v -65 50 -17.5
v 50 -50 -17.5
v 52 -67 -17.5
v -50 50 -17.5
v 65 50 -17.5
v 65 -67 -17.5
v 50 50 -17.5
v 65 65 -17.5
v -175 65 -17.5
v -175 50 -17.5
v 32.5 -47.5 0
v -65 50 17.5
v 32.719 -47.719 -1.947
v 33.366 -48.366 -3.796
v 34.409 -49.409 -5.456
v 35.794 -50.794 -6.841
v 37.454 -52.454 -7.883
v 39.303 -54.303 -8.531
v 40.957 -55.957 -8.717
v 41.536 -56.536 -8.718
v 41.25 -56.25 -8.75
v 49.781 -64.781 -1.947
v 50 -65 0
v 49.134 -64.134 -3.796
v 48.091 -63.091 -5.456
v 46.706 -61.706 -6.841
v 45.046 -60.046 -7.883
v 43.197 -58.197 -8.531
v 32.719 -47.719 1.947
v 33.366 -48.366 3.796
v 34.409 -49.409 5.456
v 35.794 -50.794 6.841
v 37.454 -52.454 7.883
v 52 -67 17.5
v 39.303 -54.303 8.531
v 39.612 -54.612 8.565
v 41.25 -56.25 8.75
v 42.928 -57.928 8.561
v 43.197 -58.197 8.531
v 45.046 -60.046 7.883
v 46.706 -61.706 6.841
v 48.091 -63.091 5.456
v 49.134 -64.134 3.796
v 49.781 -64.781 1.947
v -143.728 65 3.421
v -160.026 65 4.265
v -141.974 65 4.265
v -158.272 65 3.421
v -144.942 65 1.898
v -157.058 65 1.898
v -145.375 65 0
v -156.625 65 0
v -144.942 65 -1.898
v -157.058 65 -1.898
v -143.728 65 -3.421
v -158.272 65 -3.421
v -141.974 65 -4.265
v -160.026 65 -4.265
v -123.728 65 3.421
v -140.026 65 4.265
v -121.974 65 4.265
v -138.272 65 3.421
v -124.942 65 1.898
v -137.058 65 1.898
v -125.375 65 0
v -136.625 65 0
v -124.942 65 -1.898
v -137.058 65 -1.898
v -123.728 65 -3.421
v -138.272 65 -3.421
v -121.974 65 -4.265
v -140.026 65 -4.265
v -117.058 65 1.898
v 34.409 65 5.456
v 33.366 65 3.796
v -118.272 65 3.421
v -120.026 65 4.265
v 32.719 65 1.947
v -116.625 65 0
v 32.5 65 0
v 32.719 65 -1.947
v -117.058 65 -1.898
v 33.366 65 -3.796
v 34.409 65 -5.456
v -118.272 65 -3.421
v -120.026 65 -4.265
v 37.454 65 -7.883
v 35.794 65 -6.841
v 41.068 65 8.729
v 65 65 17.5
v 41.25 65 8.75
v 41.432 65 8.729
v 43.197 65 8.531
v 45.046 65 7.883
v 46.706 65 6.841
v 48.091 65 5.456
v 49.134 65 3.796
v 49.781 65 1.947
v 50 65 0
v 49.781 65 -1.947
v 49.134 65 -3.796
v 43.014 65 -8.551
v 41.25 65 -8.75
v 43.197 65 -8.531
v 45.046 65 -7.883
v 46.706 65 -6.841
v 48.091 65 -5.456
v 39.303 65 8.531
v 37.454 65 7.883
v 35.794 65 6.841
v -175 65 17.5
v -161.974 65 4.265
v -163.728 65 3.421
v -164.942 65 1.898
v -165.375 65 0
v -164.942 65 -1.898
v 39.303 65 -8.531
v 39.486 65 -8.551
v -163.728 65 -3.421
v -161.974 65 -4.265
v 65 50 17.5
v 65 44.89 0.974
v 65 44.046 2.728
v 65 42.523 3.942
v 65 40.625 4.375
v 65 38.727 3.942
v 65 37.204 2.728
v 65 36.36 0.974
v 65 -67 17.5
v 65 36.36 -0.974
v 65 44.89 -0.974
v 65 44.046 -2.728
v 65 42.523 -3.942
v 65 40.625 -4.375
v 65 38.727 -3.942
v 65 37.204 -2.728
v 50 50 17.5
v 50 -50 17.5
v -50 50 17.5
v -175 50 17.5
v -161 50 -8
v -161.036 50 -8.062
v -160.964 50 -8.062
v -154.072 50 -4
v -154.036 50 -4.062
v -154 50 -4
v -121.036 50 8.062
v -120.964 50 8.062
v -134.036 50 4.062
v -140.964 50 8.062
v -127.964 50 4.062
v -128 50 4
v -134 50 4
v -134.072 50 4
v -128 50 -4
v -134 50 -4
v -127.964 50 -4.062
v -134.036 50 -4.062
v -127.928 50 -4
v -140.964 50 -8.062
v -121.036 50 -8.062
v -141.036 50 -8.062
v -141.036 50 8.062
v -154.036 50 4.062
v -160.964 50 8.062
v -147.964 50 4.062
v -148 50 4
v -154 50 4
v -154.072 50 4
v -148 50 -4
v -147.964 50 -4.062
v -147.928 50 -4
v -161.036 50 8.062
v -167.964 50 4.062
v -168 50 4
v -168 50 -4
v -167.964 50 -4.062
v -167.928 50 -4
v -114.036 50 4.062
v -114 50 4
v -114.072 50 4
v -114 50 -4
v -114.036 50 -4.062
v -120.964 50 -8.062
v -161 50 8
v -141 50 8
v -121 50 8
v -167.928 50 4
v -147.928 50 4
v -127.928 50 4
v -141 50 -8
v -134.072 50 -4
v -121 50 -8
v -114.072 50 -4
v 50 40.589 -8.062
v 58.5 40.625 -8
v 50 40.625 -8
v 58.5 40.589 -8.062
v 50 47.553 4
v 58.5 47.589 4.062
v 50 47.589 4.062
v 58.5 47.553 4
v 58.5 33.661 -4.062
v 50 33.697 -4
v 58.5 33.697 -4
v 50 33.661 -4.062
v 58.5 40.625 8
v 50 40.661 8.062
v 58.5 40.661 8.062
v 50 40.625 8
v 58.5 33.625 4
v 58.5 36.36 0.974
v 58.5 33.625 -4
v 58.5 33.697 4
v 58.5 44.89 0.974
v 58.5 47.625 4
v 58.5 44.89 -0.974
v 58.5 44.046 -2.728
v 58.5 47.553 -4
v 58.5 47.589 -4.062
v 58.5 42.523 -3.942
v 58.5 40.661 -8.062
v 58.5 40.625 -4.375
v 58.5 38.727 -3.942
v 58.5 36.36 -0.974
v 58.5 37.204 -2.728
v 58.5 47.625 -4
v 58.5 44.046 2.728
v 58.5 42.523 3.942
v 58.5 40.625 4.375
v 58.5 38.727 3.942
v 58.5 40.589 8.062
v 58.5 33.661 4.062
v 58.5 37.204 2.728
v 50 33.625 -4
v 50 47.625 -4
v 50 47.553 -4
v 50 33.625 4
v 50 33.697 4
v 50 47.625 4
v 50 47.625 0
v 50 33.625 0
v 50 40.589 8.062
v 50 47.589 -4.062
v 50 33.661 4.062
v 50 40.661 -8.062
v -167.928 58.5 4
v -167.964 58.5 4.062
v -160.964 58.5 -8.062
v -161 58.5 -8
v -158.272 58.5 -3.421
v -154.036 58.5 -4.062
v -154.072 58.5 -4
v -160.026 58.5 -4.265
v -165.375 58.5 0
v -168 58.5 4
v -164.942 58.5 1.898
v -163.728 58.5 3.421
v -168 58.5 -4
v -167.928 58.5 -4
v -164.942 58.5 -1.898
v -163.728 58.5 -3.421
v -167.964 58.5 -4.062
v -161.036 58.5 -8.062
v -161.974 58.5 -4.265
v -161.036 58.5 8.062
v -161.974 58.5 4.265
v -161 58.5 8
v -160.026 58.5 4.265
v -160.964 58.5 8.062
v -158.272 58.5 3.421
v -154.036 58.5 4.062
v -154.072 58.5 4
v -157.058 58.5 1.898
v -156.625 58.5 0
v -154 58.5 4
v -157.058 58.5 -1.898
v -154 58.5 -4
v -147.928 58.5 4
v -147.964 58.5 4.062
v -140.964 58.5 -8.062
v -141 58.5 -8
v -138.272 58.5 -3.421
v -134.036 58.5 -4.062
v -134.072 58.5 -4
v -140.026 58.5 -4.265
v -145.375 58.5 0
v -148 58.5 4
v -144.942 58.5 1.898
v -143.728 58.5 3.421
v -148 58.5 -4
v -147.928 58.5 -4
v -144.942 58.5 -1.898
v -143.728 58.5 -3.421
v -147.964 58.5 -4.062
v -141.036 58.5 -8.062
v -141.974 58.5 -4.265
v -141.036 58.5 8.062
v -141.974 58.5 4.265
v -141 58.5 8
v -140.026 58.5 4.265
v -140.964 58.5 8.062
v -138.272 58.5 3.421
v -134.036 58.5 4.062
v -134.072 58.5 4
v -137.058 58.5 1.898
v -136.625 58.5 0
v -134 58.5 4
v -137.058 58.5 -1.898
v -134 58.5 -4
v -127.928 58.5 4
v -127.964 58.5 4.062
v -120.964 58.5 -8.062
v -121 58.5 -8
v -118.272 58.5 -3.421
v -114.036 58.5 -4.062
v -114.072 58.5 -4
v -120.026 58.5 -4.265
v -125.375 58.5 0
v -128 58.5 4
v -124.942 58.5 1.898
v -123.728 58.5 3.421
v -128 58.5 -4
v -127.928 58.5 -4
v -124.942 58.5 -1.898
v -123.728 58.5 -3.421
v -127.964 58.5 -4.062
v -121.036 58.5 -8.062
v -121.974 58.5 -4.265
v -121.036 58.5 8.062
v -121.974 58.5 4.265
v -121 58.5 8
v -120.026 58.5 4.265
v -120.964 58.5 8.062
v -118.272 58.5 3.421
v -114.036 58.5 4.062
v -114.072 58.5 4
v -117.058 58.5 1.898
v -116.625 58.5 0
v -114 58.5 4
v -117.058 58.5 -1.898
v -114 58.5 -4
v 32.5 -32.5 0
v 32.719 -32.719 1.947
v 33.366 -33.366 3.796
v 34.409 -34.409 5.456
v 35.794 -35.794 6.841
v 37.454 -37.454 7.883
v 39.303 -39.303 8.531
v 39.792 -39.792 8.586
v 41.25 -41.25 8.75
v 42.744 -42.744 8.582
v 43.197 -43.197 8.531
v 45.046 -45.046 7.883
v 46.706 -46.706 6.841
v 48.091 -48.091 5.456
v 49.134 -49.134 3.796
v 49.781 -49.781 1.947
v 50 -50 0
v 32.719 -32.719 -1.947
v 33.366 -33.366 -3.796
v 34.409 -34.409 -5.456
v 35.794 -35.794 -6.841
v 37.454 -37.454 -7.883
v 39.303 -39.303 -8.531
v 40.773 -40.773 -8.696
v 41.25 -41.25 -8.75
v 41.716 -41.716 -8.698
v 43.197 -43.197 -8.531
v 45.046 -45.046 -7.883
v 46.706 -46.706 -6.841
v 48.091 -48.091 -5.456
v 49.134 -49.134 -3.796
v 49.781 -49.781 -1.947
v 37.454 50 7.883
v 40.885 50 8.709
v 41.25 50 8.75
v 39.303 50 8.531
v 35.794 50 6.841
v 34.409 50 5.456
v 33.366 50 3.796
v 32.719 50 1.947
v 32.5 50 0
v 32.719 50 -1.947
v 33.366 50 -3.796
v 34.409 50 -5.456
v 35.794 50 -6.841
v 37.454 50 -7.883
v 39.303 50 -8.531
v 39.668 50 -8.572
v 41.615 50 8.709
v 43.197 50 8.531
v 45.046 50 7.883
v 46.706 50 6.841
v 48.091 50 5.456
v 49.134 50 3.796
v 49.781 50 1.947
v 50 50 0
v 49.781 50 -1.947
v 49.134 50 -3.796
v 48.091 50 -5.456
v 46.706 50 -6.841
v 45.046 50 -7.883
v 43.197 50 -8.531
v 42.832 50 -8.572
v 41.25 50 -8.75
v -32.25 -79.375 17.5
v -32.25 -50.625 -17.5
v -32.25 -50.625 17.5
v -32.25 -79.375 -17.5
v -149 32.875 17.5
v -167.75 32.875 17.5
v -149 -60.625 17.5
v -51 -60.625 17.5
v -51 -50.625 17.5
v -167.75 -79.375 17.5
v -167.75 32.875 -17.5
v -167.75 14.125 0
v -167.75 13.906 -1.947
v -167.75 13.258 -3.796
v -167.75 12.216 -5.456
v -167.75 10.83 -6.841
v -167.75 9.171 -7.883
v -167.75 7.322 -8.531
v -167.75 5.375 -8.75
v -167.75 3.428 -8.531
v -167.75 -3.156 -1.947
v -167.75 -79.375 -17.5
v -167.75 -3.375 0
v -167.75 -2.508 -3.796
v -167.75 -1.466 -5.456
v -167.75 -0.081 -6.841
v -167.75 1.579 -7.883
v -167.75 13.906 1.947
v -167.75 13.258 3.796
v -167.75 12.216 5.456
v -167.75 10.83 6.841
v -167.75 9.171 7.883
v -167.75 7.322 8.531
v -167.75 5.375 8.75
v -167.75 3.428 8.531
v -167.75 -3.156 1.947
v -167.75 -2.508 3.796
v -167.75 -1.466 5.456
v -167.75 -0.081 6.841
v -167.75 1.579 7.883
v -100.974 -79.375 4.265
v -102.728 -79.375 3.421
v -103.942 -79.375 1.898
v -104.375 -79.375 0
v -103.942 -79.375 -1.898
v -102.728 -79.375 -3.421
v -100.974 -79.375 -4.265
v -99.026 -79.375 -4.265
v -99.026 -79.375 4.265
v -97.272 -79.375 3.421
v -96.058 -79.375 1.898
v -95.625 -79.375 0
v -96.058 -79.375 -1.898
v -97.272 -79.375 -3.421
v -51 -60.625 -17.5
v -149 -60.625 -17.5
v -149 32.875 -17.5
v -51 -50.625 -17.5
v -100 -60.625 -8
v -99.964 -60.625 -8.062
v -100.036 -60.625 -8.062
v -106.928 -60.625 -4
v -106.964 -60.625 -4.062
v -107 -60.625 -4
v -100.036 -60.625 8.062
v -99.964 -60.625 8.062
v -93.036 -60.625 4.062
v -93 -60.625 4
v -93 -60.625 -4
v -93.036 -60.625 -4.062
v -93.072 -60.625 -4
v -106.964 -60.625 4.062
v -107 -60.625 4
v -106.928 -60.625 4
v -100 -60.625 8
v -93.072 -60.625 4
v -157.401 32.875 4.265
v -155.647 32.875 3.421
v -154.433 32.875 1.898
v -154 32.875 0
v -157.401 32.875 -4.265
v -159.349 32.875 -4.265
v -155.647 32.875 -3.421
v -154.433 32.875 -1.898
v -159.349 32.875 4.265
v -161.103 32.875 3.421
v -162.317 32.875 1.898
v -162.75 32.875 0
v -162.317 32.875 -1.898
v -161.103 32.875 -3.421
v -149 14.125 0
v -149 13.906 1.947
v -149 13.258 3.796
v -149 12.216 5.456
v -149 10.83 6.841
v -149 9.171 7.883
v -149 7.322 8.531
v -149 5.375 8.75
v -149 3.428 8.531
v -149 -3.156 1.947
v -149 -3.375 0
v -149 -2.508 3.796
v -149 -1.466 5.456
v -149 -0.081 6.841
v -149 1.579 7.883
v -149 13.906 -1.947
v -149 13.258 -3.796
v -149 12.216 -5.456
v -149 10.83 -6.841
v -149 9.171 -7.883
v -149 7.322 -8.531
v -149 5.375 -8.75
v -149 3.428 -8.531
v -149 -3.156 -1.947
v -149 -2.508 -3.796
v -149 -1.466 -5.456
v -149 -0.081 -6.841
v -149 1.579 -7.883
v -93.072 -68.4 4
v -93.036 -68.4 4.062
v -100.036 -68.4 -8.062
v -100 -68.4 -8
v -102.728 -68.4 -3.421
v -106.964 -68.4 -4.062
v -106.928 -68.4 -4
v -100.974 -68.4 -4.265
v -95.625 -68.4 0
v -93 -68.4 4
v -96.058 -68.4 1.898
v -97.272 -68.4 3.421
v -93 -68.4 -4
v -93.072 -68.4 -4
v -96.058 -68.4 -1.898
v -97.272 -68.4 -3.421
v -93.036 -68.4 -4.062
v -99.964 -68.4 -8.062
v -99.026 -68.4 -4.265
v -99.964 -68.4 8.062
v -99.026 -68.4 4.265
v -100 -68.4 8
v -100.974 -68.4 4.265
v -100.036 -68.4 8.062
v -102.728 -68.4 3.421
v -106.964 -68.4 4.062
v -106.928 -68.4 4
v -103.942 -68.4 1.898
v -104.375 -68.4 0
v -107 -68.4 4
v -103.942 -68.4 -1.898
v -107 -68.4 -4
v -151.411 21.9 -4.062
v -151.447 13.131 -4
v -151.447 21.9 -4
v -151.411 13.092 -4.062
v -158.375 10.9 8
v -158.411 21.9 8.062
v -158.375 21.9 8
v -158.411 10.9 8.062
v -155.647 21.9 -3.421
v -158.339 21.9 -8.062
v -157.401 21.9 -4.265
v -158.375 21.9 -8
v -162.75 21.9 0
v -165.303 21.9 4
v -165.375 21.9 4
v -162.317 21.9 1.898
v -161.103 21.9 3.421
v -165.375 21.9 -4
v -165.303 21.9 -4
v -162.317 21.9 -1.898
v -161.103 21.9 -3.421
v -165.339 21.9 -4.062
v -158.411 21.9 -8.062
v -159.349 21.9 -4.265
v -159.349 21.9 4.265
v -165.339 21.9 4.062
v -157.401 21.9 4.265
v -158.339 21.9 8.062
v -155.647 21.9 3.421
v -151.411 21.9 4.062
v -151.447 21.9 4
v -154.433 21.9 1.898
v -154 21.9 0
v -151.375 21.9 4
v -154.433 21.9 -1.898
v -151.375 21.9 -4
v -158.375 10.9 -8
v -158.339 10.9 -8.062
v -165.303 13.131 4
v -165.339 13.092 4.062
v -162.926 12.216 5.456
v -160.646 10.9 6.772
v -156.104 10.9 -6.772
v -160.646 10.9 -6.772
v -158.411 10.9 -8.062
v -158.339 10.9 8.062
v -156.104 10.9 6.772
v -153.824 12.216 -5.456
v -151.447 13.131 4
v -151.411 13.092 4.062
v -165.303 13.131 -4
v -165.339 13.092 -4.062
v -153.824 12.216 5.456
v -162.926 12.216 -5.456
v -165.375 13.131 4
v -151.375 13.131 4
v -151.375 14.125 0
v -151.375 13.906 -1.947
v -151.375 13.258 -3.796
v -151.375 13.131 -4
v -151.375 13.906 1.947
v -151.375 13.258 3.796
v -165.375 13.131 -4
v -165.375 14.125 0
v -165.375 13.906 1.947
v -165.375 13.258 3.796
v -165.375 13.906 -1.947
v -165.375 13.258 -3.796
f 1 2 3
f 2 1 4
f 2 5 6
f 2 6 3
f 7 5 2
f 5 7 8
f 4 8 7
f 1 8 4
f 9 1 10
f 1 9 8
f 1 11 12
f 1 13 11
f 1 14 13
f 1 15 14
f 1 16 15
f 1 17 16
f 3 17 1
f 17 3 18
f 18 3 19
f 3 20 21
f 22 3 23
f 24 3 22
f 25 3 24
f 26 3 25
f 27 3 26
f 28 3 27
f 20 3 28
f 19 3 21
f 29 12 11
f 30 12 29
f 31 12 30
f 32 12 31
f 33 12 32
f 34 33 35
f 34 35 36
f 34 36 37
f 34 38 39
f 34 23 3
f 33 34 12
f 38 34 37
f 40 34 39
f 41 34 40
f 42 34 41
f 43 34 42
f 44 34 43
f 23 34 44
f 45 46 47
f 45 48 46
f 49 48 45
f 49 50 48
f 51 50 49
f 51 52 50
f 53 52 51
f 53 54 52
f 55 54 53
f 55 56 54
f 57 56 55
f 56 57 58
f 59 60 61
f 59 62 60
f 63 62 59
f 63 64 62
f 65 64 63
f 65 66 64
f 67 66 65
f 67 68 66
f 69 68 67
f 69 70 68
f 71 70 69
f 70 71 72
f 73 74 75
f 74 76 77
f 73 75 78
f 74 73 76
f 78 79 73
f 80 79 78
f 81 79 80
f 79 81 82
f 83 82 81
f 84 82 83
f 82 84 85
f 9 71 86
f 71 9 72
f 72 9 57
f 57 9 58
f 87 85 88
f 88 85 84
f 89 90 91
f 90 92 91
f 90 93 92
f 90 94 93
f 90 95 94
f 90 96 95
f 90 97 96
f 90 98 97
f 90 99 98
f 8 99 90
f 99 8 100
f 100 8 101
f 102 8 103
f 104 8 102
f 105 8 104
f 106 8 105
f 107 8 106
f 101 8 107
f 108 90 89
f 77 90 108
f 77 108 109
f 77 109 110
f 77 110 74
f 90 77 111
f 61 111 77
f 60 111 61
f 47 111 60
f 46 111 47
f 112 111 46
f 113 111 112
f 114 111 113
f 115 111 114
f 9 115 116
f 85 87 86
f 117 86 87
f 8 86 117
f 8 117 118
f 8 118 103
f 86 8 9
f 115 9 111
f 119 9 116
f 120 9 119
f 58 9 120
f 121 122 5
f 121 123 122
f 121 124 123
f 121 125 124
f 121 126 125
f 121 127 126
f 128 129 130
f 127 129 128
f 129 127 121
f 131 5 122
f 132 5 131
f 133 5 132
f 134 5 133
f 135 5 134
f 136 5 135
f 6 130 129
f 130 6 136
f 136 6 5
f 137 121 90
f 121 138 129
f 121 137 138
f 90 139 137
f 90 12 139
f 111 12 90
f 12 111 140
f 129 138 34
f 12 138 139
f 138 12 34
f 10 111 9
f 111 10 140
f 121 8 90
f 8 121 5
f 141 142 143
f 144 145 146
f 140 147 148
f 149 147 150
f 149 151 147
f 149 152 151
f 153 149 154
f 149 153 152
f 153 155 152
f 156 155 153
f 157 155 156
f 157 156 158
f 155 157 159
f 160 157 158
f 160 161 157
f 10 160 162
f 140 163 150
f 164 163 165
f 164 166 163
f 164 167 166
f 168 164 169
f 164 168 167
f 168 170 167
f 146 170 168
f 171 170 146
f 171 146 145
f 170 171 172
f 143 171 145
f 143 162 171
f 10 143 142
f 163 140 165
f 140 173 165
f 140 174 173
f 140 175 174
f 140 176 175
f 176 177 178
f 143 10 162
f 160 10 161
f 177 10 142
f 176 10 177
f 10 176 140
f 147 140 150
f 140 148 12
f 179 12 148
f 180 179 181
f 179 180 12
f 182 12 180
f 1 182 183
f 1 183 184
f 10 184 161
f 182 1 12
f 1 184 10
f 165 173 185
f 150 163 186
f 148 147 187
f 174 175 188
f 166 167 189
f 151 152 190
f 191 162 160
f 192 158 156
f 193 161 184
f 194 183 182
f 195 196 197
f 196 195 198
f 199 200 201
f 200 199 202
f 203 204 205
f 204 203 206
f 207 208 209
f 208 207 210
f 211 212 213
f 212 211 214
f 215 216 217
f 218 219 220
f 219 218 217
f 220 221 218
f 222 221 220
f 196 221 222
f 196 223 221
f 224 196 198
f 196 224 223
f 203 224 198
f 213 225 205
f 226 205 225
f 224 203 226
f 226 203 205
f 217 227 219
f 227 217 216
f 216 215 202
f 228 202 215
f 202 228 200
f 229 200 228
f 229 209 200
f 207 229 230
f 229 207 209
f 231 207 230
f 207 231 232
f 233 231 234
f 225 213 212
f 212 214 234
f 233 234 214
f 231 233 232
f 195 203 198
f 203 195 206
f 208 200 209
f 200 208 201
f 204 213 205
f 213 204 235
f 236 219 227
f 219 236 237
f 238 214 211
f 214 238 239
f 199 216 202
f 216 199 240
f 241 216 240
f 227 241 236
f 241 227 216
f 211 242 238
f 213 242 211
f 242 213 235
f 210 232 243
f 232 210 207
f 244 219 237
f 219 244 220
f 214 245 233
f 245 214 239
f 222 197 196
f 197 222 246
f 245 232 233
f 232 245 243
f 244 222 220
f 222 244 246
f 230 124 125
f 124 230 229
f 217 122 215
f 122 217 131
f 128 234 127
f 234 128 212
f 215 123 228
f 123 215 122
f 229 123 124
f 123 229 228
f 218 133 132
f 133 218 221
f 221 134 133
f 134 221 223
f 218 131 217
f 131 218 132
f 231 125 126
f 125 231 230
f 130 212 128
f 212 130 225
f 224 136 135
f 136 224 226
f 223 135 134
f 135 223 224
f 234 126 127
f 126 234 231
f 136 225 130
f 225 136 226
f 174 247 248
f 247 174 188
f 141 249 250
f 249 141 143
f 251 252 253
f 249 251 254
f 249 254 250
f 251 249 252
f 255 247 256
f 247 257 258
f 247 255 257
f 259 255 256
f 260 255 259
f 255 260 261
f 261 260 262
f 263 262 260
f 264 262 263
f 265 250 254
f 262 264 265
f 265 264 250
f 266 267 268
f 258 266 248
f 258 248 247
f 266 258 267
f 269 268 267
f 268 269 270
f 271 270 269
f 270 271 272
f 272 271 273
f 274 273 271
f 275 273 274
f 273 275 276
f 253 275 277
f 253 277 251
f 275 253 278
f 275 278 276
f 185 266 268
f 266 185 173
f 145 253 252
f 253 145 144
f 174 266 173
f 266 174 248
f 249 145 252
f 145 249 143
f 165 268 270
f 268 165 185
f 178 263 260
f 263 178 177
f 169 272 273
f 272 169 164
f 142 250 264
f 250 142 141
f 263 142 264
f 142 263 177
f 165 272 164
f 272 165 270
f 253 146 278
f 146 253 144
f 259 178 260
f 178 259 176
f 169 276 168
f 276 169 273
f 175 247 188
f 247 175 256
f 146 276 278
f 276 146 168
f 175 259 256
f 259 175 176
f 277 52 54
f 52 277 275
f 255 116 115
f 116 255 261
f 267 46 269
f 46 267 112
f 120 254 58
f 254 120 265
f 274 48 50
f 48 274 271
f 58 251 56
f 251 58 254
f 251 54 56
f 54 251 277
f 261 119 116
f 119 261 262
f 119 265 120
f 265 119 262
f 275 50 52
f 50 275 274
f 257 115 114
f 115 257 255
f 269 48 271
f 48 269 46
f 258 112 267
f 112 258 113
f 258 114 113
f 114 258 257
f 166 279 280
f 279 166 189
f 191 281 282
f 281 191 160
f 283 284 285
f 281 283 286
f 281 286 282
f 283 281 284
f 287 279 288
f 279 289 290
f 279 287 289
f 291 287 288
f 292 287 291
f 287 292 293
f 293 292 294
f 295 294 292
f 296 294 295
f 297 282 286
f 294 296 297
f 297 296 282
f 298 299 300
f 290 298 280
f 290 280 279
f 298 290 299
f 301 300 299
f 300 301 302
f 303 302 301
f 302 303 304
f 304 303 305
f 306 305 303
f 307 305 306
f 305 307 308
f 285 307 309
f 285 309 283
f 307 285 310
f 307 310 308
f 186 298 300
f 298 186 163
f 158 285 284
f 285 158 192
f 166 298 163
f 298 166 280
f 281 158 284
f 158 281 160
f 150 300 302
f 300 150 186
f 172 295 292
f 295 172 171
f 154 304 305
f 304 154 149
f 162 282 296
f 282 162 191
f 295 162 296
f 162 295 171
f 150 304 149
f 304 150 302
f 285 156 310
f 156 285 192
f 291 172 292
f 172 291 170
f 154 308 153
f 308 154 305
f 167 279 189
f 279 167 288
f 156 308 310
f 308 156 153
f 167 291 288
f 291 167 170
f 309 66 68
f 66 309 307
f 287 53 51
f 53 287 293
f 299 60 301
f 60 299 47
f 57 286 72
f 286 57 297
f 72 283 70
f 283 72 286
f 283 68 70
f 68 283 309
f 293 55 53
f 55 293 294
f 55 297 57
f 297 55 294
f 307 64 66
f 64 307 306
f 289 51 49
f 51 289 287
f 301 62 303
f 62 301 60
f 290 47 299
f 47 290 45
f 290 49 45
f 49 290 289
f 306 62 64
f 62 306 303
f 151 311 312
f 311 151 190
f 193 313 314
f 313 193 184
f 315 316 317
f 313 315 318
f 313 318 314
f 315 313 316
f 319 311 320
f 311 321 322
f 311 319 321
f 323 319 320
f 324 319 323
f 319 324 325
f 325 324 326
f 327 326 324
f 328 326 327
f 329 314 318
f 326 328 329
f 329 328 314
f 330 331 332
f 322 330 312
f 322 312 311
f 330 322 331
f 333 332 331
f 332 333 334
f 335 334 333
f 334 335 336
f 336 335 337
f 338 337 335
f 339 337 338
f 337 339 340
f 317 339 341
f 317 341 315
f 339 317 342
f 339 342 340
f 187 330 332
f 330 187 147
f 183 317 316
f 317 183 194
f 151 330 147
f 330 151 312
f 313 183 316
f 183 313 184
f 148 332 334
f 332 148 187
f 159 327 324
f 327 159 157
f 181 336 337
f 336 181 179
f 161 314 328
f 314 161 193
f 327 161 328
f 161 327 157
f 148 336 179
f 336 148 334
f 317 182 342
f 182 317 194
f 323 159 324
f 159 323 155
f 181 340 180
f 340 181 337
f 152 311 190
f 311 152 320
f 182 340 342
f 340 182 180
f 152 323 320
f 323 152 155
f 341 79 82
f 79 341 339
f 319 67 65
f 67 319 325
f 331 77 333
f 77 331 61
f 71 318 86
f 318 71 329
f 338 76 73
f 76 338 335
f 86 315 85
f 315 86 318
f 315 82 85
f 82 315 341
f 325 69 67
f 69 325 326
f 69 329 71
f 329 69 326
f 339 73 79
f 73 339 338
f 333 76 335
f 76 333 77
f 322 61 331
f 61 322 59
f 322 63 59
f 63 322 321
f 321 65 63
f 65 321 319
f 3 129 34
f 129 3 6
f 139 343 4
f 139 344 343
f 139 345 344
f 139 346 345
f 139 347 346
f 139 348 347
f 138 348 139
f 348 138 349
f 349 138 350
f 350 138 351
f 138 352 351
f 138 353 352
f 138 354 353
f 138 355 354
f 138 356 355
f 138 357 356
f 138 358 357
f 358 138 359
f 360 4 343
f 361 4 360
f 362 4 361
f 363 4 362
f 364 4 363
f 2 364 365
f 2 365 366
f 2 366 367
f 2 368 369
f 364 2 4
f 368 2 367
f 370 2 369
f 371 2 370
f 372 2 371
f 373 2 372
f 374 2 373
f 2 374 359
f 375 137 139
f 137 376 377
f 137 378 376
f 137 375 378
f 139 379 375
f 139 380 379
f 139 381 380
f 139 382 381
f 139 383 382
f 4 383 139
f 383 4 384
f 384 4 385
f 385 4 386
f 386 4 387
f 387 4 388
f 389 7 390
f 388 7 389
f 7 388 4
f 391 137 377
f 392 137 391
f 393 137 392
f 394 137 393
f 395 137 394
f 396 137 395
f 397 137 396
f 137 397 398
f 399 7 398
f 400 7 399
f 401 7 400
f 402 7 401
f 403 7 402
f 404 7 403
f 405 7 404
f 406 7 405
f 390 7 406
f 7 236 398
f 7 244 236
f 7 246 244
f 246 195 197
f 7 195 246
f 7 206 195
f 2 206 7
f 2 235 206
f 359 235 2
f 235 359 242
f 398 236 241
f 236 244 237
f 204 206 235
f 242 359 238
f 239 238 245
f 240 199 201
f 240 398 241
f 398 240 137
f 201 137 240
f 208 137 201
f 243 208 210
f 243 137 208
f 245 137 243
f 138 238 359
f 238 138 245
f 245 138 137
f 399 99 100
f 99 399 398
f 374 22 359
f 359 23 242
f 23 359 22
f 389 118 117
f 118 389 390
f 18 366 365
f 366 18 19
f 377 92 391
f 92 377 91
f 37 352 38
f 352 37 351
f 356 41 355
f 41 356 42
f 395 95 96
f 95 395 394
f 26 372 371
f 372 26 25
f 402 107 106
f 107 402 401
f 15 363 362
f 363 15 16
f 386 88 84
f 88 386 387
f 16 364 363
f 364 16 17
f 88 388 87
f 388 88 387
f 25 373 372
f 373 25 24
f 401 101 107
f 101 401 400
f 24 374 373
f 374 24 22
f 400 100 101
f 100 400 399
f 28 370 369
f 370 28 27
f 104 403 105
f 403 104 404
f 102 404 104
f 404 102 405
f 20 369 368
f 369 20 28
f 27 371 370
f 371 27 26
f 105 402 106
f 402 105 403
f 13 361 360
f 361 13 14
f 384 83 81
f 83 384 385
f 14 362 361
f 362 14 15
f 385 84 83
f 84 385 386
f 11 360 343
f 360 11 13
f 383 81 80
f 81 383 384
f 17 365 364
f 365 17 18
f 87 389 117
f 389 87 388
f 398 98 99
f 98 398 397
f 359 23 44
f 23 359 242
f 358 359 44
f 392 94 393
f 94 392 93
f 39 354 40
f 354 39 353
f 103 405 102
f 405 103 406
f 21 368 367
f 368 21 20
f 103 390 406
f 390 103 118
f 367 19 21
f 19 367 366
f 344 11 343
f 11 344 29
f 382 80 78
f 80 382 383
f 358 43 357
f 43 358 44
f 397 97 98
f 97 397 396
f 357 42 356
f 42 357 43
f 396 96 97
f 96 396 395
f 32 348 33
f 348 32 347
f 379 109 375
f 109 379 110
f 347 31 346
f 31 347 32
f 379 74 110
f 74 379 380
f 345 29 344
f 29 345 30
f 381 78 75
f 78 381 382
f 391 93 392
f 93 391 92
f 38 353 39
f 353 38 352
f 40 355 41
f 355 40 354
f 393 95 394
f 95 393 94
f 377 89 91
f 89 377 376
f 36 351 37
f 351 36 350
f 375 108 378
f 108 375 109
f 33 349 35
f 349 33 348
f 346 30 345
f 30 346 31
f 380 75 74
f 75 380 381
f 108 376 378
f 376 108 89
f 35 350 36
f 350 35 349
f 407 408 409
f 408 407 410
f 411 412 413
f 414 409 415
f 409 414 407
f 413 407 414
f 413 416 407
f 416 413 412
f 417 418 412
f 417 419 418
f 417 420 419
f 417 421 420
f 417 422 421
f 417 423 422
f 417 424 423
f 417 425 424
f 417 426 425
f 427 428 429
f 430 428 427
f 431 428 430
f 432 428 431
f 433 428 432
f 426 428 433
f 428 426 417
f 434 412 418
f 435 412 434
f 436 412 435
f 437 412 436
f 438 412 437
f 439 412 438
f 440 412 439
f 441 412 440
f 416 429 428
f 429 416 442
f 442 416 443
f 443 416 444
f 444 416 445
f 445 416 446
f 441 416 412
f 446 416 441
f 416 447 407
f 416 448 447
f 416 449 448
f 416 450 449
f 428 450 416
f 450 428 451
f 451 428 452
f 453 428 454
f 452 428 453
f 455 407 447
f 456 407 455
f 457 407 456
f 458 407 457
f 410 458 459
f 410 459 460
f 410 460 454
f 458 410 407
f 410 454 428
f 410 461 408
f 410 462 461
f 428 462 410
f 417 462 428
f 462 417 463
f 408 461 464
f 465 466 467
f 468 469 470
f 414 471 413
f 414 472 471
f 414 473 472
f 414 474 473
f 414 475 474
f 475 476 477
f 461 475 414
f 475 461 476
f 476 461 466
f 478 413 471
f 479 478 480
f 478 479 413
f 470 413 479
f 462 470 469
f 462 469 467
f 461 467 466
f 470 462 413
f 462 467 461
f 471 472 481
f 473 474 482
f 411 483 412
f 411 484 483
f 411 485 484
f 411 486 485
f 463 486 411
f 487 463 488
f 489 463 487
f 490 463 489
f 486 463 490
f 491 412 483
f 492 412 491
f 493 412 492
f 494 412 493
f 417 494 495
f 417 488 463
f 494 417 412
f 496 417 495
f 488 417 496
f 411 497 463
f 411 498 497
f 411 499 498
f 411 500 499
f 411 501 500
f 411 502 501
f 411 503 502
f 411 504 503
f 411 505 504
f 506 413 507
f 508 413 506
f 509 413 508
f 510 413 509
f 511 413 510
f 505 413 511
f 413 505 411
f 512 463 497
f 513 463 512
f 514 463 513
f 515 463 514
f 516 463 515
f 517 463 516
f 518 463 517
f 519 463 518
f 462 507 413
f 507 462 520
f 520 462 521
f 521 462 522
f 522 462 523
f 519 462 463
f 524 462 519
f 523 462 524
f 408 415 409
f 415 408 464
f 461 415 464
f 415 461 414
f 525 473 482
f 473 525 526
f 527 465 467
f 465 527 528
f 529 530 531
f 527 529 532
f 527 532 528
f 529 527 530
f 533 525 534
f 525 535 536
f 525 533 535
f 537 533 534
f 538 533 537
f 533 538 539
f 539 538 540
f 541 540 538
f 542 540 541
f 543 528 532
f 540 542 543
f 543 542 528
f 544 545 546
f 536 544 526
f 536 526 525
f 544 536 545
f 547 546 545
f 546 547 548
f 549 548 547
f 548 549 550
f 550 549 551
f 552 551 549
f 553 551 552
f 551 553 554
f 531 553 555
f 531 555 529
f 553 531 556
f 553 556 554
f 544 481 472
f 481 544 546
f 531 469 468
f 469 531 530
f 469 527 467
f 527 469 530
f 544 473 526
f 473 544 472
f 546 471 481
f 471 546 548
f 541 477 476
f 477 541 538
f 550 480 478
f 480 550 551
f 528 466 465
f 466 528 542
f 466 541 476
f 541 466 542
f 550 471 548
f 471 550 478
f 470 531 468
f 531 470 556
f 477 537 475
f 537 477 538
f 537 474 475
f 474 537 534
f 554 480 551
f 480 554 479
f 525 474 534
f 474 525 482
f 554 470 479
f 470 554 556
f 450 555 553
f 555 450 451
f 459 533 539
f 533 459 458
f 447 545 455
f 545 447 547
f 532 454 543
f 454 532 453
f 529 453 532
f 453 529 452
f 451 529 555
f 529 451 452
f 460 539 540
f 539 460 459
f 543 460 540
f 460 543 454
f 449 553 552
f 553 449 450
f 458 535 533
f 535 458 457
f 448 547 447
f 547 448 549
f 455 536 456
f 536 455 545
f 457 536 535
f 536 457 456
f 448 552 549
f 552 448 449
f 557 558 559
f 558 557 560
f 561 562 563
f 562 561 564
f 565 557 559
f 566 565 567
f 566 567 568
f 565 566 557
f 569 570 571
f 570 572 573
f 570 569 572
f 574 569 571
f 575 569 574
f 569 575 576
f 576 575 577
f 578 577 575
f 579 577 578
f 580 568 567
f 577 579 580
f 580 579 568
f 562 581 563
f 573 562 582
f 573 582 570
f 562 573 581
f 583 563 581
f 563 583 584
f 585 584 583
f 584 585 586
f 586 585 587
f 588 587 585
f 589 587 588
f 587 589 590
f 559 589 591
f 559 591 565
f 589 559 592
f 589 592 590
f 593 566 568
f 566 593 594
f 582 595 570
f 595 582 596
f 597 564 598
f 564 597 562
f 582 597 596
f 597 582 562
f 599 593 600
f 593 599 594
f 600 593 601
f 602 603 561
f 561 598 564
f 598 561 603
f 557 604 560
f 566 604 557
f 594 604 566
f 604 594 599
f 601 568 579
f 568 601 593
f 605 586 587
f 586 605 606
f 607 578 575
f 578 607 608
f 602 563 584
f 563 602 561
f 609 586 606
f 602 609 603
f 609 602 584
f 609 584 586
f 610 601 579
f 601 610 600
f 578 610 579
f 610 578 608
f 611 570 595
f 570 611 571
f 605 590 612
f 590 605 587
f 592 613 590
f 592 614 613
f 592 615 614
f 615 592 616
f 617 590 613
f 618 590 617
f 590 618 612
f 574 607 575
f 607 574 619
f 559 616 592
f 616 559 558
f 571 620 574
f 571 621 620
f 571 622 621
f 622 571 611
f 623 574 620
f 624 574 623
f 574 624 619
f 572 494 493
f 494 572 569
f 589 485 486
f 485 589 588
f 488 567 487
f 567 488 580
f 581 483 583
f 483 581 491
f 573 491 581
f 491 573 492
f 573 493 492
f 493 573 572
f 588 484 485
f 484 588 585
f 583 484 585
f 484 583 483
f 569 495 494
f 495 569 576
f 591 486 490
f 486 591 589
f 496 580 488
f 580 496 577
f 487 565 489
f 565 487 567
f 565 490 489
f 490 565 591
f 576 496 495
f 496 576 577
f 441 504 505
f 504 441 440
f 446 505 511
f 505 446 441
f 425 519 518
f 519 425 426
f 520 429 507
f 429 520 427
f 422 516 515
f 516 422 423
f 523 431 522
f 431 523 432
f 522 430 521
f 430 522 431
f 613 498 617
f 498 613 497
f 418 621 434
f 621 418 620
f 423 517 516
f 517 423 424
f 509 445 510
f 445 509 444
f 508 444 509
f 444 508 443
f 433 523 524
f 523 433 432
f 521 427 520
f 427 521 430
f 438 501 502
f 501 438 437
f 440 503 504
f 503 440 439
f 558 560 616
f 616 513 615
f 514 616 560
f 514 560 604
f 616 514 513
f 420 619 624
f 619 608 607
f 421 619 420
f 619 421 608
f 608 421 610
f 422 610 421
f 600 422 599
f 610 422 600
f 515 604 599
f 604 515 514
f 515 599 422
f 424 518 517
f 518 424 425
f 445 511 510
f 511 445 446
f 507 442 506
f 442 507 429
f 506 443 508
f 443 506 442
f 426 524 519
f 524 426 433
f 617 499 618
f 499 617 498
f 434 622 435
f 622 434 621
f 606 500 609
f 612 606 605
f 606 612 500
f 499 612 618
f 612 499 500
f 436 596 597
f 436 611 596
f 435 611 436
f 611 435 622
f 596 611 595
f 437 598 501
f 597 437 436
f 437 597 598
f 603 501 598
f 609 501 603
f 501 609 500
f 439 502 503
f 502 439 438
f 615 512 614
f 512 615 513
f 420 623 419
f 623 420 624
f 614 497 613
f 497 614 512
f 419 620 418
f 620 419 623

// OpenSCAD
/*
  Brackets to mount CNI eye tracker camera to an IV pole.
*/

// Top bracket (for the camera)
toplength = 240;
sidelength = 100;
thickness = 35;
pole_radius = 17.5/2;
mount_screw_diameter = 8.75; // 1/4" screw (clear-through)
mount_nut_size = 14.0;
mount_nut_height = 8.0;

// bottom bracket (to secure pole to bed)
bed_height = 98;
bed_to_pole = 66;
bed_inset = 10;

width = 15;            // thickness of outer edges

// From http://svn.clifford.at/openscad/trunk/libraries/shapes.scad
// size is the XY plane size, height in Z
module hexagon(size, height) {
  boxWidth = size/1.75;
  for (r = [-60, 0, 60]) rotate([0,0,r]) cube([boxWidth, size, height], true);
}

module triangle(size=sidelength, height=1) {
  // extrudes a right triangle of given size and thickness
  linear_extrude(height=height, center=true)
  polygon(points = [[0, 0], [size, 0], [0, size]], paths = [[0, 1, 2]]);
}

module hexnut(pad){
  translate([0,0,-pad/2-1])
    cylinder(r=mount_screw_diameter/2, h=pad+2);
  // Hexnut cut-out for pole mount screw
  translate([0,0,-(mount_nut_height/2+.1+3)])
    rotate(30, [0,0,1])
      hexagon(mount_nut_size, mount_nut_height+3); // 1/4" hex nut size
}

module top_bracket(P){
  S = sidelength/2; // precompute this oft-used value
  
  difference() {
    // Outer triangle & top beam
    union(){
      translate([S+P, S+P, 0])
        rotate(180, [0,0,1])
          triangle(sidelength + P*3, thickness);
      translate([-toplength+(S+P), S, -thickness/2])
        cube([toplength,P,thickness]);
    }
    
    // Round the sharp edge
    translate([S-P+1, -S*2+3, -thickness/2-1])
        cube([35,30,thickness+2]);
      
    // Inner triangle
    translate([S, S, 0])
      rotate(180, [0,0,1]) 
        triangle(sidelength, thickness+2);
  
    // hole for pole
    rotate(-90, [1, 0, 0])
      translate([S-pole_radius,0,-(S+P*2)])
        cylinder(r=pole_radius, h=sidelength+P*4);
      
    // hole for pole mount screw
    offset = S-mount_screw_diameter/2-5;
    rotate(-90, [0, 1, 0]){ // TODO: use hexnut module
      translate([0,offset,-(S+P+1)])
        cylinder(r=mount_screw_diameter/2, h=P+2);
      // Hexnut cut-out for pole mount screw
      translate([0,offset,-(S+mount_nut_height/2)])
        hexagon(mount_nut_size, mount_nut_height+1); // 1/4" hex nut size
    }
    
    // Holes for camera mount bolts-- cut a few to allow optimal positioning.
    for(i = [0:2]){
      d = -toplength+S+P+mount_nut_size + 20 * i;
      rotate(-90, [1, 0, 0]){  // TODO: use hexnut module
        translate([d, 0, S-P])
          cylinder(r=mount_screw_diameter/2, h=P*3);
        // Hexnut cut-out for pole mount screw
        translate([d, 0, S+mount_nut_height/2])
          // Rotate the nuts for minimal horizontal overhang
          rotate(30, [0,0,1])
            hexagon(mount_nut_size, mount_nut_height+1); // 1/4" hex nut size
      }
    }
  }
}

module bottom_bracket(P){
  //bed_height = 98;bed_to_pole = 66;bed_inset = 10;
  difference() {
    union(){
      cube([bed_height+2*P, P, thickness], center=true);
      rotate(-90, [0,0,1])
        translate([bed_to_pole/2+P/2+pole_radius/2, bed_height/2+P/2, 0])
          cube([bed_to_pole+2*P+pole_radius, P, thickness], center=true);
      rotate(-90, [0,0,1])
        translate([bed_inset/2, -bed_height/2-P/2, 0])
          cube([bed_inset+P, P, thickness], center=true);
    }

    // hole for pole
    rotate(-90, [0, 1, 0])
      translate([0, -bed_to_pole-P/2, -bed_height/2-P-1])
        cylinder(r=pole_radius, h=P+2);
      
    // hole for bed tension screw
    rotate(-90, [1, 0, 0])
      hexnut(P);

    // hole for pole tension screw
    rotate(90, [1, 0, 0])
      translate([bed_height/2+P/2, 0, bed_to_pole+P+pole_radius])
        hexnut(P);
  }
}

top_bracket(width);
translate([-100,-70,0])
  rotate(180, [0, 0, 1])
    bottom_bracket(width*1.25);
